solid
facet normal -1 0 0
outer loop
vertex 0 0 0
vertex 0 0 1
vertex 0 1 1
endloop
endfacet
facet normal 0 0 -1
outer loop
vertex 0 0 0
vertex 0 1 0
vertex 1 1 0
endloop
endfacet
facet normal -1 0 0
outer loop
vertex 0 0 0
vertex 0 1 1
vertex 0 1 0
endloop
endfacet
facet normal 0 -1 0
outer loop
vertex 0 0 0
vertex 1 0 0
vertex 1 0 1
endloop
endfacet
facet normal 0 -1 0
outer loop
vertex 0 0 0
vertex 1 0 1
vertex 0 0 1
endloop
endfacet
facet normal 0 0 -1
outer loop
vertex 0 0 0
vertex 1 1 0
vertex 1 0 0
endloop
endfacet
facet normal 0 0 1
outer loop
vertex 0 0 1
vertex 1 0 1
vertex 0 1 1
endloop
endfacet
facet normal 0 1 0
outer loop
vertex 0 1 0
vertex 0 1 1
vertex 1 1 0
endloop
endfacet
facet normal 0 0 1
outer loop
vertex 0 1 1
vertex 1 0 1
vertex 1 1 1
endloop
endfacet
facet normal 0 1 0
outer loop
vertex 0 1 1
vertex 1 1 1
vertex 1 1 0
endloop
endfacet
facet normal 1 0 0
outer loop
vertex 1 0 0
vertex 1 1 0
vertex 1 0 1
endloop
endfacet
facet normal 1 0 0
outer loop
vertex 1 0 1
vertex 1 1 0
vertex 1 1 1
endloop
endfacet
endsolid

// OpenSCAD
/* Warning, this is a very basic generator with a lot of approximation 
input data : [UDFN, HCA, 1.0x1.0mm, 4, , A, C04-01149A]
generated by com.zoubworld.electronics.cad.model3d.Basic
Date : Sun Feb 15 10:50:49 CET 2026
*/

//body
color("black")
translate([0,0,0])
cube([1.0,1.0,1.0], center=false);
